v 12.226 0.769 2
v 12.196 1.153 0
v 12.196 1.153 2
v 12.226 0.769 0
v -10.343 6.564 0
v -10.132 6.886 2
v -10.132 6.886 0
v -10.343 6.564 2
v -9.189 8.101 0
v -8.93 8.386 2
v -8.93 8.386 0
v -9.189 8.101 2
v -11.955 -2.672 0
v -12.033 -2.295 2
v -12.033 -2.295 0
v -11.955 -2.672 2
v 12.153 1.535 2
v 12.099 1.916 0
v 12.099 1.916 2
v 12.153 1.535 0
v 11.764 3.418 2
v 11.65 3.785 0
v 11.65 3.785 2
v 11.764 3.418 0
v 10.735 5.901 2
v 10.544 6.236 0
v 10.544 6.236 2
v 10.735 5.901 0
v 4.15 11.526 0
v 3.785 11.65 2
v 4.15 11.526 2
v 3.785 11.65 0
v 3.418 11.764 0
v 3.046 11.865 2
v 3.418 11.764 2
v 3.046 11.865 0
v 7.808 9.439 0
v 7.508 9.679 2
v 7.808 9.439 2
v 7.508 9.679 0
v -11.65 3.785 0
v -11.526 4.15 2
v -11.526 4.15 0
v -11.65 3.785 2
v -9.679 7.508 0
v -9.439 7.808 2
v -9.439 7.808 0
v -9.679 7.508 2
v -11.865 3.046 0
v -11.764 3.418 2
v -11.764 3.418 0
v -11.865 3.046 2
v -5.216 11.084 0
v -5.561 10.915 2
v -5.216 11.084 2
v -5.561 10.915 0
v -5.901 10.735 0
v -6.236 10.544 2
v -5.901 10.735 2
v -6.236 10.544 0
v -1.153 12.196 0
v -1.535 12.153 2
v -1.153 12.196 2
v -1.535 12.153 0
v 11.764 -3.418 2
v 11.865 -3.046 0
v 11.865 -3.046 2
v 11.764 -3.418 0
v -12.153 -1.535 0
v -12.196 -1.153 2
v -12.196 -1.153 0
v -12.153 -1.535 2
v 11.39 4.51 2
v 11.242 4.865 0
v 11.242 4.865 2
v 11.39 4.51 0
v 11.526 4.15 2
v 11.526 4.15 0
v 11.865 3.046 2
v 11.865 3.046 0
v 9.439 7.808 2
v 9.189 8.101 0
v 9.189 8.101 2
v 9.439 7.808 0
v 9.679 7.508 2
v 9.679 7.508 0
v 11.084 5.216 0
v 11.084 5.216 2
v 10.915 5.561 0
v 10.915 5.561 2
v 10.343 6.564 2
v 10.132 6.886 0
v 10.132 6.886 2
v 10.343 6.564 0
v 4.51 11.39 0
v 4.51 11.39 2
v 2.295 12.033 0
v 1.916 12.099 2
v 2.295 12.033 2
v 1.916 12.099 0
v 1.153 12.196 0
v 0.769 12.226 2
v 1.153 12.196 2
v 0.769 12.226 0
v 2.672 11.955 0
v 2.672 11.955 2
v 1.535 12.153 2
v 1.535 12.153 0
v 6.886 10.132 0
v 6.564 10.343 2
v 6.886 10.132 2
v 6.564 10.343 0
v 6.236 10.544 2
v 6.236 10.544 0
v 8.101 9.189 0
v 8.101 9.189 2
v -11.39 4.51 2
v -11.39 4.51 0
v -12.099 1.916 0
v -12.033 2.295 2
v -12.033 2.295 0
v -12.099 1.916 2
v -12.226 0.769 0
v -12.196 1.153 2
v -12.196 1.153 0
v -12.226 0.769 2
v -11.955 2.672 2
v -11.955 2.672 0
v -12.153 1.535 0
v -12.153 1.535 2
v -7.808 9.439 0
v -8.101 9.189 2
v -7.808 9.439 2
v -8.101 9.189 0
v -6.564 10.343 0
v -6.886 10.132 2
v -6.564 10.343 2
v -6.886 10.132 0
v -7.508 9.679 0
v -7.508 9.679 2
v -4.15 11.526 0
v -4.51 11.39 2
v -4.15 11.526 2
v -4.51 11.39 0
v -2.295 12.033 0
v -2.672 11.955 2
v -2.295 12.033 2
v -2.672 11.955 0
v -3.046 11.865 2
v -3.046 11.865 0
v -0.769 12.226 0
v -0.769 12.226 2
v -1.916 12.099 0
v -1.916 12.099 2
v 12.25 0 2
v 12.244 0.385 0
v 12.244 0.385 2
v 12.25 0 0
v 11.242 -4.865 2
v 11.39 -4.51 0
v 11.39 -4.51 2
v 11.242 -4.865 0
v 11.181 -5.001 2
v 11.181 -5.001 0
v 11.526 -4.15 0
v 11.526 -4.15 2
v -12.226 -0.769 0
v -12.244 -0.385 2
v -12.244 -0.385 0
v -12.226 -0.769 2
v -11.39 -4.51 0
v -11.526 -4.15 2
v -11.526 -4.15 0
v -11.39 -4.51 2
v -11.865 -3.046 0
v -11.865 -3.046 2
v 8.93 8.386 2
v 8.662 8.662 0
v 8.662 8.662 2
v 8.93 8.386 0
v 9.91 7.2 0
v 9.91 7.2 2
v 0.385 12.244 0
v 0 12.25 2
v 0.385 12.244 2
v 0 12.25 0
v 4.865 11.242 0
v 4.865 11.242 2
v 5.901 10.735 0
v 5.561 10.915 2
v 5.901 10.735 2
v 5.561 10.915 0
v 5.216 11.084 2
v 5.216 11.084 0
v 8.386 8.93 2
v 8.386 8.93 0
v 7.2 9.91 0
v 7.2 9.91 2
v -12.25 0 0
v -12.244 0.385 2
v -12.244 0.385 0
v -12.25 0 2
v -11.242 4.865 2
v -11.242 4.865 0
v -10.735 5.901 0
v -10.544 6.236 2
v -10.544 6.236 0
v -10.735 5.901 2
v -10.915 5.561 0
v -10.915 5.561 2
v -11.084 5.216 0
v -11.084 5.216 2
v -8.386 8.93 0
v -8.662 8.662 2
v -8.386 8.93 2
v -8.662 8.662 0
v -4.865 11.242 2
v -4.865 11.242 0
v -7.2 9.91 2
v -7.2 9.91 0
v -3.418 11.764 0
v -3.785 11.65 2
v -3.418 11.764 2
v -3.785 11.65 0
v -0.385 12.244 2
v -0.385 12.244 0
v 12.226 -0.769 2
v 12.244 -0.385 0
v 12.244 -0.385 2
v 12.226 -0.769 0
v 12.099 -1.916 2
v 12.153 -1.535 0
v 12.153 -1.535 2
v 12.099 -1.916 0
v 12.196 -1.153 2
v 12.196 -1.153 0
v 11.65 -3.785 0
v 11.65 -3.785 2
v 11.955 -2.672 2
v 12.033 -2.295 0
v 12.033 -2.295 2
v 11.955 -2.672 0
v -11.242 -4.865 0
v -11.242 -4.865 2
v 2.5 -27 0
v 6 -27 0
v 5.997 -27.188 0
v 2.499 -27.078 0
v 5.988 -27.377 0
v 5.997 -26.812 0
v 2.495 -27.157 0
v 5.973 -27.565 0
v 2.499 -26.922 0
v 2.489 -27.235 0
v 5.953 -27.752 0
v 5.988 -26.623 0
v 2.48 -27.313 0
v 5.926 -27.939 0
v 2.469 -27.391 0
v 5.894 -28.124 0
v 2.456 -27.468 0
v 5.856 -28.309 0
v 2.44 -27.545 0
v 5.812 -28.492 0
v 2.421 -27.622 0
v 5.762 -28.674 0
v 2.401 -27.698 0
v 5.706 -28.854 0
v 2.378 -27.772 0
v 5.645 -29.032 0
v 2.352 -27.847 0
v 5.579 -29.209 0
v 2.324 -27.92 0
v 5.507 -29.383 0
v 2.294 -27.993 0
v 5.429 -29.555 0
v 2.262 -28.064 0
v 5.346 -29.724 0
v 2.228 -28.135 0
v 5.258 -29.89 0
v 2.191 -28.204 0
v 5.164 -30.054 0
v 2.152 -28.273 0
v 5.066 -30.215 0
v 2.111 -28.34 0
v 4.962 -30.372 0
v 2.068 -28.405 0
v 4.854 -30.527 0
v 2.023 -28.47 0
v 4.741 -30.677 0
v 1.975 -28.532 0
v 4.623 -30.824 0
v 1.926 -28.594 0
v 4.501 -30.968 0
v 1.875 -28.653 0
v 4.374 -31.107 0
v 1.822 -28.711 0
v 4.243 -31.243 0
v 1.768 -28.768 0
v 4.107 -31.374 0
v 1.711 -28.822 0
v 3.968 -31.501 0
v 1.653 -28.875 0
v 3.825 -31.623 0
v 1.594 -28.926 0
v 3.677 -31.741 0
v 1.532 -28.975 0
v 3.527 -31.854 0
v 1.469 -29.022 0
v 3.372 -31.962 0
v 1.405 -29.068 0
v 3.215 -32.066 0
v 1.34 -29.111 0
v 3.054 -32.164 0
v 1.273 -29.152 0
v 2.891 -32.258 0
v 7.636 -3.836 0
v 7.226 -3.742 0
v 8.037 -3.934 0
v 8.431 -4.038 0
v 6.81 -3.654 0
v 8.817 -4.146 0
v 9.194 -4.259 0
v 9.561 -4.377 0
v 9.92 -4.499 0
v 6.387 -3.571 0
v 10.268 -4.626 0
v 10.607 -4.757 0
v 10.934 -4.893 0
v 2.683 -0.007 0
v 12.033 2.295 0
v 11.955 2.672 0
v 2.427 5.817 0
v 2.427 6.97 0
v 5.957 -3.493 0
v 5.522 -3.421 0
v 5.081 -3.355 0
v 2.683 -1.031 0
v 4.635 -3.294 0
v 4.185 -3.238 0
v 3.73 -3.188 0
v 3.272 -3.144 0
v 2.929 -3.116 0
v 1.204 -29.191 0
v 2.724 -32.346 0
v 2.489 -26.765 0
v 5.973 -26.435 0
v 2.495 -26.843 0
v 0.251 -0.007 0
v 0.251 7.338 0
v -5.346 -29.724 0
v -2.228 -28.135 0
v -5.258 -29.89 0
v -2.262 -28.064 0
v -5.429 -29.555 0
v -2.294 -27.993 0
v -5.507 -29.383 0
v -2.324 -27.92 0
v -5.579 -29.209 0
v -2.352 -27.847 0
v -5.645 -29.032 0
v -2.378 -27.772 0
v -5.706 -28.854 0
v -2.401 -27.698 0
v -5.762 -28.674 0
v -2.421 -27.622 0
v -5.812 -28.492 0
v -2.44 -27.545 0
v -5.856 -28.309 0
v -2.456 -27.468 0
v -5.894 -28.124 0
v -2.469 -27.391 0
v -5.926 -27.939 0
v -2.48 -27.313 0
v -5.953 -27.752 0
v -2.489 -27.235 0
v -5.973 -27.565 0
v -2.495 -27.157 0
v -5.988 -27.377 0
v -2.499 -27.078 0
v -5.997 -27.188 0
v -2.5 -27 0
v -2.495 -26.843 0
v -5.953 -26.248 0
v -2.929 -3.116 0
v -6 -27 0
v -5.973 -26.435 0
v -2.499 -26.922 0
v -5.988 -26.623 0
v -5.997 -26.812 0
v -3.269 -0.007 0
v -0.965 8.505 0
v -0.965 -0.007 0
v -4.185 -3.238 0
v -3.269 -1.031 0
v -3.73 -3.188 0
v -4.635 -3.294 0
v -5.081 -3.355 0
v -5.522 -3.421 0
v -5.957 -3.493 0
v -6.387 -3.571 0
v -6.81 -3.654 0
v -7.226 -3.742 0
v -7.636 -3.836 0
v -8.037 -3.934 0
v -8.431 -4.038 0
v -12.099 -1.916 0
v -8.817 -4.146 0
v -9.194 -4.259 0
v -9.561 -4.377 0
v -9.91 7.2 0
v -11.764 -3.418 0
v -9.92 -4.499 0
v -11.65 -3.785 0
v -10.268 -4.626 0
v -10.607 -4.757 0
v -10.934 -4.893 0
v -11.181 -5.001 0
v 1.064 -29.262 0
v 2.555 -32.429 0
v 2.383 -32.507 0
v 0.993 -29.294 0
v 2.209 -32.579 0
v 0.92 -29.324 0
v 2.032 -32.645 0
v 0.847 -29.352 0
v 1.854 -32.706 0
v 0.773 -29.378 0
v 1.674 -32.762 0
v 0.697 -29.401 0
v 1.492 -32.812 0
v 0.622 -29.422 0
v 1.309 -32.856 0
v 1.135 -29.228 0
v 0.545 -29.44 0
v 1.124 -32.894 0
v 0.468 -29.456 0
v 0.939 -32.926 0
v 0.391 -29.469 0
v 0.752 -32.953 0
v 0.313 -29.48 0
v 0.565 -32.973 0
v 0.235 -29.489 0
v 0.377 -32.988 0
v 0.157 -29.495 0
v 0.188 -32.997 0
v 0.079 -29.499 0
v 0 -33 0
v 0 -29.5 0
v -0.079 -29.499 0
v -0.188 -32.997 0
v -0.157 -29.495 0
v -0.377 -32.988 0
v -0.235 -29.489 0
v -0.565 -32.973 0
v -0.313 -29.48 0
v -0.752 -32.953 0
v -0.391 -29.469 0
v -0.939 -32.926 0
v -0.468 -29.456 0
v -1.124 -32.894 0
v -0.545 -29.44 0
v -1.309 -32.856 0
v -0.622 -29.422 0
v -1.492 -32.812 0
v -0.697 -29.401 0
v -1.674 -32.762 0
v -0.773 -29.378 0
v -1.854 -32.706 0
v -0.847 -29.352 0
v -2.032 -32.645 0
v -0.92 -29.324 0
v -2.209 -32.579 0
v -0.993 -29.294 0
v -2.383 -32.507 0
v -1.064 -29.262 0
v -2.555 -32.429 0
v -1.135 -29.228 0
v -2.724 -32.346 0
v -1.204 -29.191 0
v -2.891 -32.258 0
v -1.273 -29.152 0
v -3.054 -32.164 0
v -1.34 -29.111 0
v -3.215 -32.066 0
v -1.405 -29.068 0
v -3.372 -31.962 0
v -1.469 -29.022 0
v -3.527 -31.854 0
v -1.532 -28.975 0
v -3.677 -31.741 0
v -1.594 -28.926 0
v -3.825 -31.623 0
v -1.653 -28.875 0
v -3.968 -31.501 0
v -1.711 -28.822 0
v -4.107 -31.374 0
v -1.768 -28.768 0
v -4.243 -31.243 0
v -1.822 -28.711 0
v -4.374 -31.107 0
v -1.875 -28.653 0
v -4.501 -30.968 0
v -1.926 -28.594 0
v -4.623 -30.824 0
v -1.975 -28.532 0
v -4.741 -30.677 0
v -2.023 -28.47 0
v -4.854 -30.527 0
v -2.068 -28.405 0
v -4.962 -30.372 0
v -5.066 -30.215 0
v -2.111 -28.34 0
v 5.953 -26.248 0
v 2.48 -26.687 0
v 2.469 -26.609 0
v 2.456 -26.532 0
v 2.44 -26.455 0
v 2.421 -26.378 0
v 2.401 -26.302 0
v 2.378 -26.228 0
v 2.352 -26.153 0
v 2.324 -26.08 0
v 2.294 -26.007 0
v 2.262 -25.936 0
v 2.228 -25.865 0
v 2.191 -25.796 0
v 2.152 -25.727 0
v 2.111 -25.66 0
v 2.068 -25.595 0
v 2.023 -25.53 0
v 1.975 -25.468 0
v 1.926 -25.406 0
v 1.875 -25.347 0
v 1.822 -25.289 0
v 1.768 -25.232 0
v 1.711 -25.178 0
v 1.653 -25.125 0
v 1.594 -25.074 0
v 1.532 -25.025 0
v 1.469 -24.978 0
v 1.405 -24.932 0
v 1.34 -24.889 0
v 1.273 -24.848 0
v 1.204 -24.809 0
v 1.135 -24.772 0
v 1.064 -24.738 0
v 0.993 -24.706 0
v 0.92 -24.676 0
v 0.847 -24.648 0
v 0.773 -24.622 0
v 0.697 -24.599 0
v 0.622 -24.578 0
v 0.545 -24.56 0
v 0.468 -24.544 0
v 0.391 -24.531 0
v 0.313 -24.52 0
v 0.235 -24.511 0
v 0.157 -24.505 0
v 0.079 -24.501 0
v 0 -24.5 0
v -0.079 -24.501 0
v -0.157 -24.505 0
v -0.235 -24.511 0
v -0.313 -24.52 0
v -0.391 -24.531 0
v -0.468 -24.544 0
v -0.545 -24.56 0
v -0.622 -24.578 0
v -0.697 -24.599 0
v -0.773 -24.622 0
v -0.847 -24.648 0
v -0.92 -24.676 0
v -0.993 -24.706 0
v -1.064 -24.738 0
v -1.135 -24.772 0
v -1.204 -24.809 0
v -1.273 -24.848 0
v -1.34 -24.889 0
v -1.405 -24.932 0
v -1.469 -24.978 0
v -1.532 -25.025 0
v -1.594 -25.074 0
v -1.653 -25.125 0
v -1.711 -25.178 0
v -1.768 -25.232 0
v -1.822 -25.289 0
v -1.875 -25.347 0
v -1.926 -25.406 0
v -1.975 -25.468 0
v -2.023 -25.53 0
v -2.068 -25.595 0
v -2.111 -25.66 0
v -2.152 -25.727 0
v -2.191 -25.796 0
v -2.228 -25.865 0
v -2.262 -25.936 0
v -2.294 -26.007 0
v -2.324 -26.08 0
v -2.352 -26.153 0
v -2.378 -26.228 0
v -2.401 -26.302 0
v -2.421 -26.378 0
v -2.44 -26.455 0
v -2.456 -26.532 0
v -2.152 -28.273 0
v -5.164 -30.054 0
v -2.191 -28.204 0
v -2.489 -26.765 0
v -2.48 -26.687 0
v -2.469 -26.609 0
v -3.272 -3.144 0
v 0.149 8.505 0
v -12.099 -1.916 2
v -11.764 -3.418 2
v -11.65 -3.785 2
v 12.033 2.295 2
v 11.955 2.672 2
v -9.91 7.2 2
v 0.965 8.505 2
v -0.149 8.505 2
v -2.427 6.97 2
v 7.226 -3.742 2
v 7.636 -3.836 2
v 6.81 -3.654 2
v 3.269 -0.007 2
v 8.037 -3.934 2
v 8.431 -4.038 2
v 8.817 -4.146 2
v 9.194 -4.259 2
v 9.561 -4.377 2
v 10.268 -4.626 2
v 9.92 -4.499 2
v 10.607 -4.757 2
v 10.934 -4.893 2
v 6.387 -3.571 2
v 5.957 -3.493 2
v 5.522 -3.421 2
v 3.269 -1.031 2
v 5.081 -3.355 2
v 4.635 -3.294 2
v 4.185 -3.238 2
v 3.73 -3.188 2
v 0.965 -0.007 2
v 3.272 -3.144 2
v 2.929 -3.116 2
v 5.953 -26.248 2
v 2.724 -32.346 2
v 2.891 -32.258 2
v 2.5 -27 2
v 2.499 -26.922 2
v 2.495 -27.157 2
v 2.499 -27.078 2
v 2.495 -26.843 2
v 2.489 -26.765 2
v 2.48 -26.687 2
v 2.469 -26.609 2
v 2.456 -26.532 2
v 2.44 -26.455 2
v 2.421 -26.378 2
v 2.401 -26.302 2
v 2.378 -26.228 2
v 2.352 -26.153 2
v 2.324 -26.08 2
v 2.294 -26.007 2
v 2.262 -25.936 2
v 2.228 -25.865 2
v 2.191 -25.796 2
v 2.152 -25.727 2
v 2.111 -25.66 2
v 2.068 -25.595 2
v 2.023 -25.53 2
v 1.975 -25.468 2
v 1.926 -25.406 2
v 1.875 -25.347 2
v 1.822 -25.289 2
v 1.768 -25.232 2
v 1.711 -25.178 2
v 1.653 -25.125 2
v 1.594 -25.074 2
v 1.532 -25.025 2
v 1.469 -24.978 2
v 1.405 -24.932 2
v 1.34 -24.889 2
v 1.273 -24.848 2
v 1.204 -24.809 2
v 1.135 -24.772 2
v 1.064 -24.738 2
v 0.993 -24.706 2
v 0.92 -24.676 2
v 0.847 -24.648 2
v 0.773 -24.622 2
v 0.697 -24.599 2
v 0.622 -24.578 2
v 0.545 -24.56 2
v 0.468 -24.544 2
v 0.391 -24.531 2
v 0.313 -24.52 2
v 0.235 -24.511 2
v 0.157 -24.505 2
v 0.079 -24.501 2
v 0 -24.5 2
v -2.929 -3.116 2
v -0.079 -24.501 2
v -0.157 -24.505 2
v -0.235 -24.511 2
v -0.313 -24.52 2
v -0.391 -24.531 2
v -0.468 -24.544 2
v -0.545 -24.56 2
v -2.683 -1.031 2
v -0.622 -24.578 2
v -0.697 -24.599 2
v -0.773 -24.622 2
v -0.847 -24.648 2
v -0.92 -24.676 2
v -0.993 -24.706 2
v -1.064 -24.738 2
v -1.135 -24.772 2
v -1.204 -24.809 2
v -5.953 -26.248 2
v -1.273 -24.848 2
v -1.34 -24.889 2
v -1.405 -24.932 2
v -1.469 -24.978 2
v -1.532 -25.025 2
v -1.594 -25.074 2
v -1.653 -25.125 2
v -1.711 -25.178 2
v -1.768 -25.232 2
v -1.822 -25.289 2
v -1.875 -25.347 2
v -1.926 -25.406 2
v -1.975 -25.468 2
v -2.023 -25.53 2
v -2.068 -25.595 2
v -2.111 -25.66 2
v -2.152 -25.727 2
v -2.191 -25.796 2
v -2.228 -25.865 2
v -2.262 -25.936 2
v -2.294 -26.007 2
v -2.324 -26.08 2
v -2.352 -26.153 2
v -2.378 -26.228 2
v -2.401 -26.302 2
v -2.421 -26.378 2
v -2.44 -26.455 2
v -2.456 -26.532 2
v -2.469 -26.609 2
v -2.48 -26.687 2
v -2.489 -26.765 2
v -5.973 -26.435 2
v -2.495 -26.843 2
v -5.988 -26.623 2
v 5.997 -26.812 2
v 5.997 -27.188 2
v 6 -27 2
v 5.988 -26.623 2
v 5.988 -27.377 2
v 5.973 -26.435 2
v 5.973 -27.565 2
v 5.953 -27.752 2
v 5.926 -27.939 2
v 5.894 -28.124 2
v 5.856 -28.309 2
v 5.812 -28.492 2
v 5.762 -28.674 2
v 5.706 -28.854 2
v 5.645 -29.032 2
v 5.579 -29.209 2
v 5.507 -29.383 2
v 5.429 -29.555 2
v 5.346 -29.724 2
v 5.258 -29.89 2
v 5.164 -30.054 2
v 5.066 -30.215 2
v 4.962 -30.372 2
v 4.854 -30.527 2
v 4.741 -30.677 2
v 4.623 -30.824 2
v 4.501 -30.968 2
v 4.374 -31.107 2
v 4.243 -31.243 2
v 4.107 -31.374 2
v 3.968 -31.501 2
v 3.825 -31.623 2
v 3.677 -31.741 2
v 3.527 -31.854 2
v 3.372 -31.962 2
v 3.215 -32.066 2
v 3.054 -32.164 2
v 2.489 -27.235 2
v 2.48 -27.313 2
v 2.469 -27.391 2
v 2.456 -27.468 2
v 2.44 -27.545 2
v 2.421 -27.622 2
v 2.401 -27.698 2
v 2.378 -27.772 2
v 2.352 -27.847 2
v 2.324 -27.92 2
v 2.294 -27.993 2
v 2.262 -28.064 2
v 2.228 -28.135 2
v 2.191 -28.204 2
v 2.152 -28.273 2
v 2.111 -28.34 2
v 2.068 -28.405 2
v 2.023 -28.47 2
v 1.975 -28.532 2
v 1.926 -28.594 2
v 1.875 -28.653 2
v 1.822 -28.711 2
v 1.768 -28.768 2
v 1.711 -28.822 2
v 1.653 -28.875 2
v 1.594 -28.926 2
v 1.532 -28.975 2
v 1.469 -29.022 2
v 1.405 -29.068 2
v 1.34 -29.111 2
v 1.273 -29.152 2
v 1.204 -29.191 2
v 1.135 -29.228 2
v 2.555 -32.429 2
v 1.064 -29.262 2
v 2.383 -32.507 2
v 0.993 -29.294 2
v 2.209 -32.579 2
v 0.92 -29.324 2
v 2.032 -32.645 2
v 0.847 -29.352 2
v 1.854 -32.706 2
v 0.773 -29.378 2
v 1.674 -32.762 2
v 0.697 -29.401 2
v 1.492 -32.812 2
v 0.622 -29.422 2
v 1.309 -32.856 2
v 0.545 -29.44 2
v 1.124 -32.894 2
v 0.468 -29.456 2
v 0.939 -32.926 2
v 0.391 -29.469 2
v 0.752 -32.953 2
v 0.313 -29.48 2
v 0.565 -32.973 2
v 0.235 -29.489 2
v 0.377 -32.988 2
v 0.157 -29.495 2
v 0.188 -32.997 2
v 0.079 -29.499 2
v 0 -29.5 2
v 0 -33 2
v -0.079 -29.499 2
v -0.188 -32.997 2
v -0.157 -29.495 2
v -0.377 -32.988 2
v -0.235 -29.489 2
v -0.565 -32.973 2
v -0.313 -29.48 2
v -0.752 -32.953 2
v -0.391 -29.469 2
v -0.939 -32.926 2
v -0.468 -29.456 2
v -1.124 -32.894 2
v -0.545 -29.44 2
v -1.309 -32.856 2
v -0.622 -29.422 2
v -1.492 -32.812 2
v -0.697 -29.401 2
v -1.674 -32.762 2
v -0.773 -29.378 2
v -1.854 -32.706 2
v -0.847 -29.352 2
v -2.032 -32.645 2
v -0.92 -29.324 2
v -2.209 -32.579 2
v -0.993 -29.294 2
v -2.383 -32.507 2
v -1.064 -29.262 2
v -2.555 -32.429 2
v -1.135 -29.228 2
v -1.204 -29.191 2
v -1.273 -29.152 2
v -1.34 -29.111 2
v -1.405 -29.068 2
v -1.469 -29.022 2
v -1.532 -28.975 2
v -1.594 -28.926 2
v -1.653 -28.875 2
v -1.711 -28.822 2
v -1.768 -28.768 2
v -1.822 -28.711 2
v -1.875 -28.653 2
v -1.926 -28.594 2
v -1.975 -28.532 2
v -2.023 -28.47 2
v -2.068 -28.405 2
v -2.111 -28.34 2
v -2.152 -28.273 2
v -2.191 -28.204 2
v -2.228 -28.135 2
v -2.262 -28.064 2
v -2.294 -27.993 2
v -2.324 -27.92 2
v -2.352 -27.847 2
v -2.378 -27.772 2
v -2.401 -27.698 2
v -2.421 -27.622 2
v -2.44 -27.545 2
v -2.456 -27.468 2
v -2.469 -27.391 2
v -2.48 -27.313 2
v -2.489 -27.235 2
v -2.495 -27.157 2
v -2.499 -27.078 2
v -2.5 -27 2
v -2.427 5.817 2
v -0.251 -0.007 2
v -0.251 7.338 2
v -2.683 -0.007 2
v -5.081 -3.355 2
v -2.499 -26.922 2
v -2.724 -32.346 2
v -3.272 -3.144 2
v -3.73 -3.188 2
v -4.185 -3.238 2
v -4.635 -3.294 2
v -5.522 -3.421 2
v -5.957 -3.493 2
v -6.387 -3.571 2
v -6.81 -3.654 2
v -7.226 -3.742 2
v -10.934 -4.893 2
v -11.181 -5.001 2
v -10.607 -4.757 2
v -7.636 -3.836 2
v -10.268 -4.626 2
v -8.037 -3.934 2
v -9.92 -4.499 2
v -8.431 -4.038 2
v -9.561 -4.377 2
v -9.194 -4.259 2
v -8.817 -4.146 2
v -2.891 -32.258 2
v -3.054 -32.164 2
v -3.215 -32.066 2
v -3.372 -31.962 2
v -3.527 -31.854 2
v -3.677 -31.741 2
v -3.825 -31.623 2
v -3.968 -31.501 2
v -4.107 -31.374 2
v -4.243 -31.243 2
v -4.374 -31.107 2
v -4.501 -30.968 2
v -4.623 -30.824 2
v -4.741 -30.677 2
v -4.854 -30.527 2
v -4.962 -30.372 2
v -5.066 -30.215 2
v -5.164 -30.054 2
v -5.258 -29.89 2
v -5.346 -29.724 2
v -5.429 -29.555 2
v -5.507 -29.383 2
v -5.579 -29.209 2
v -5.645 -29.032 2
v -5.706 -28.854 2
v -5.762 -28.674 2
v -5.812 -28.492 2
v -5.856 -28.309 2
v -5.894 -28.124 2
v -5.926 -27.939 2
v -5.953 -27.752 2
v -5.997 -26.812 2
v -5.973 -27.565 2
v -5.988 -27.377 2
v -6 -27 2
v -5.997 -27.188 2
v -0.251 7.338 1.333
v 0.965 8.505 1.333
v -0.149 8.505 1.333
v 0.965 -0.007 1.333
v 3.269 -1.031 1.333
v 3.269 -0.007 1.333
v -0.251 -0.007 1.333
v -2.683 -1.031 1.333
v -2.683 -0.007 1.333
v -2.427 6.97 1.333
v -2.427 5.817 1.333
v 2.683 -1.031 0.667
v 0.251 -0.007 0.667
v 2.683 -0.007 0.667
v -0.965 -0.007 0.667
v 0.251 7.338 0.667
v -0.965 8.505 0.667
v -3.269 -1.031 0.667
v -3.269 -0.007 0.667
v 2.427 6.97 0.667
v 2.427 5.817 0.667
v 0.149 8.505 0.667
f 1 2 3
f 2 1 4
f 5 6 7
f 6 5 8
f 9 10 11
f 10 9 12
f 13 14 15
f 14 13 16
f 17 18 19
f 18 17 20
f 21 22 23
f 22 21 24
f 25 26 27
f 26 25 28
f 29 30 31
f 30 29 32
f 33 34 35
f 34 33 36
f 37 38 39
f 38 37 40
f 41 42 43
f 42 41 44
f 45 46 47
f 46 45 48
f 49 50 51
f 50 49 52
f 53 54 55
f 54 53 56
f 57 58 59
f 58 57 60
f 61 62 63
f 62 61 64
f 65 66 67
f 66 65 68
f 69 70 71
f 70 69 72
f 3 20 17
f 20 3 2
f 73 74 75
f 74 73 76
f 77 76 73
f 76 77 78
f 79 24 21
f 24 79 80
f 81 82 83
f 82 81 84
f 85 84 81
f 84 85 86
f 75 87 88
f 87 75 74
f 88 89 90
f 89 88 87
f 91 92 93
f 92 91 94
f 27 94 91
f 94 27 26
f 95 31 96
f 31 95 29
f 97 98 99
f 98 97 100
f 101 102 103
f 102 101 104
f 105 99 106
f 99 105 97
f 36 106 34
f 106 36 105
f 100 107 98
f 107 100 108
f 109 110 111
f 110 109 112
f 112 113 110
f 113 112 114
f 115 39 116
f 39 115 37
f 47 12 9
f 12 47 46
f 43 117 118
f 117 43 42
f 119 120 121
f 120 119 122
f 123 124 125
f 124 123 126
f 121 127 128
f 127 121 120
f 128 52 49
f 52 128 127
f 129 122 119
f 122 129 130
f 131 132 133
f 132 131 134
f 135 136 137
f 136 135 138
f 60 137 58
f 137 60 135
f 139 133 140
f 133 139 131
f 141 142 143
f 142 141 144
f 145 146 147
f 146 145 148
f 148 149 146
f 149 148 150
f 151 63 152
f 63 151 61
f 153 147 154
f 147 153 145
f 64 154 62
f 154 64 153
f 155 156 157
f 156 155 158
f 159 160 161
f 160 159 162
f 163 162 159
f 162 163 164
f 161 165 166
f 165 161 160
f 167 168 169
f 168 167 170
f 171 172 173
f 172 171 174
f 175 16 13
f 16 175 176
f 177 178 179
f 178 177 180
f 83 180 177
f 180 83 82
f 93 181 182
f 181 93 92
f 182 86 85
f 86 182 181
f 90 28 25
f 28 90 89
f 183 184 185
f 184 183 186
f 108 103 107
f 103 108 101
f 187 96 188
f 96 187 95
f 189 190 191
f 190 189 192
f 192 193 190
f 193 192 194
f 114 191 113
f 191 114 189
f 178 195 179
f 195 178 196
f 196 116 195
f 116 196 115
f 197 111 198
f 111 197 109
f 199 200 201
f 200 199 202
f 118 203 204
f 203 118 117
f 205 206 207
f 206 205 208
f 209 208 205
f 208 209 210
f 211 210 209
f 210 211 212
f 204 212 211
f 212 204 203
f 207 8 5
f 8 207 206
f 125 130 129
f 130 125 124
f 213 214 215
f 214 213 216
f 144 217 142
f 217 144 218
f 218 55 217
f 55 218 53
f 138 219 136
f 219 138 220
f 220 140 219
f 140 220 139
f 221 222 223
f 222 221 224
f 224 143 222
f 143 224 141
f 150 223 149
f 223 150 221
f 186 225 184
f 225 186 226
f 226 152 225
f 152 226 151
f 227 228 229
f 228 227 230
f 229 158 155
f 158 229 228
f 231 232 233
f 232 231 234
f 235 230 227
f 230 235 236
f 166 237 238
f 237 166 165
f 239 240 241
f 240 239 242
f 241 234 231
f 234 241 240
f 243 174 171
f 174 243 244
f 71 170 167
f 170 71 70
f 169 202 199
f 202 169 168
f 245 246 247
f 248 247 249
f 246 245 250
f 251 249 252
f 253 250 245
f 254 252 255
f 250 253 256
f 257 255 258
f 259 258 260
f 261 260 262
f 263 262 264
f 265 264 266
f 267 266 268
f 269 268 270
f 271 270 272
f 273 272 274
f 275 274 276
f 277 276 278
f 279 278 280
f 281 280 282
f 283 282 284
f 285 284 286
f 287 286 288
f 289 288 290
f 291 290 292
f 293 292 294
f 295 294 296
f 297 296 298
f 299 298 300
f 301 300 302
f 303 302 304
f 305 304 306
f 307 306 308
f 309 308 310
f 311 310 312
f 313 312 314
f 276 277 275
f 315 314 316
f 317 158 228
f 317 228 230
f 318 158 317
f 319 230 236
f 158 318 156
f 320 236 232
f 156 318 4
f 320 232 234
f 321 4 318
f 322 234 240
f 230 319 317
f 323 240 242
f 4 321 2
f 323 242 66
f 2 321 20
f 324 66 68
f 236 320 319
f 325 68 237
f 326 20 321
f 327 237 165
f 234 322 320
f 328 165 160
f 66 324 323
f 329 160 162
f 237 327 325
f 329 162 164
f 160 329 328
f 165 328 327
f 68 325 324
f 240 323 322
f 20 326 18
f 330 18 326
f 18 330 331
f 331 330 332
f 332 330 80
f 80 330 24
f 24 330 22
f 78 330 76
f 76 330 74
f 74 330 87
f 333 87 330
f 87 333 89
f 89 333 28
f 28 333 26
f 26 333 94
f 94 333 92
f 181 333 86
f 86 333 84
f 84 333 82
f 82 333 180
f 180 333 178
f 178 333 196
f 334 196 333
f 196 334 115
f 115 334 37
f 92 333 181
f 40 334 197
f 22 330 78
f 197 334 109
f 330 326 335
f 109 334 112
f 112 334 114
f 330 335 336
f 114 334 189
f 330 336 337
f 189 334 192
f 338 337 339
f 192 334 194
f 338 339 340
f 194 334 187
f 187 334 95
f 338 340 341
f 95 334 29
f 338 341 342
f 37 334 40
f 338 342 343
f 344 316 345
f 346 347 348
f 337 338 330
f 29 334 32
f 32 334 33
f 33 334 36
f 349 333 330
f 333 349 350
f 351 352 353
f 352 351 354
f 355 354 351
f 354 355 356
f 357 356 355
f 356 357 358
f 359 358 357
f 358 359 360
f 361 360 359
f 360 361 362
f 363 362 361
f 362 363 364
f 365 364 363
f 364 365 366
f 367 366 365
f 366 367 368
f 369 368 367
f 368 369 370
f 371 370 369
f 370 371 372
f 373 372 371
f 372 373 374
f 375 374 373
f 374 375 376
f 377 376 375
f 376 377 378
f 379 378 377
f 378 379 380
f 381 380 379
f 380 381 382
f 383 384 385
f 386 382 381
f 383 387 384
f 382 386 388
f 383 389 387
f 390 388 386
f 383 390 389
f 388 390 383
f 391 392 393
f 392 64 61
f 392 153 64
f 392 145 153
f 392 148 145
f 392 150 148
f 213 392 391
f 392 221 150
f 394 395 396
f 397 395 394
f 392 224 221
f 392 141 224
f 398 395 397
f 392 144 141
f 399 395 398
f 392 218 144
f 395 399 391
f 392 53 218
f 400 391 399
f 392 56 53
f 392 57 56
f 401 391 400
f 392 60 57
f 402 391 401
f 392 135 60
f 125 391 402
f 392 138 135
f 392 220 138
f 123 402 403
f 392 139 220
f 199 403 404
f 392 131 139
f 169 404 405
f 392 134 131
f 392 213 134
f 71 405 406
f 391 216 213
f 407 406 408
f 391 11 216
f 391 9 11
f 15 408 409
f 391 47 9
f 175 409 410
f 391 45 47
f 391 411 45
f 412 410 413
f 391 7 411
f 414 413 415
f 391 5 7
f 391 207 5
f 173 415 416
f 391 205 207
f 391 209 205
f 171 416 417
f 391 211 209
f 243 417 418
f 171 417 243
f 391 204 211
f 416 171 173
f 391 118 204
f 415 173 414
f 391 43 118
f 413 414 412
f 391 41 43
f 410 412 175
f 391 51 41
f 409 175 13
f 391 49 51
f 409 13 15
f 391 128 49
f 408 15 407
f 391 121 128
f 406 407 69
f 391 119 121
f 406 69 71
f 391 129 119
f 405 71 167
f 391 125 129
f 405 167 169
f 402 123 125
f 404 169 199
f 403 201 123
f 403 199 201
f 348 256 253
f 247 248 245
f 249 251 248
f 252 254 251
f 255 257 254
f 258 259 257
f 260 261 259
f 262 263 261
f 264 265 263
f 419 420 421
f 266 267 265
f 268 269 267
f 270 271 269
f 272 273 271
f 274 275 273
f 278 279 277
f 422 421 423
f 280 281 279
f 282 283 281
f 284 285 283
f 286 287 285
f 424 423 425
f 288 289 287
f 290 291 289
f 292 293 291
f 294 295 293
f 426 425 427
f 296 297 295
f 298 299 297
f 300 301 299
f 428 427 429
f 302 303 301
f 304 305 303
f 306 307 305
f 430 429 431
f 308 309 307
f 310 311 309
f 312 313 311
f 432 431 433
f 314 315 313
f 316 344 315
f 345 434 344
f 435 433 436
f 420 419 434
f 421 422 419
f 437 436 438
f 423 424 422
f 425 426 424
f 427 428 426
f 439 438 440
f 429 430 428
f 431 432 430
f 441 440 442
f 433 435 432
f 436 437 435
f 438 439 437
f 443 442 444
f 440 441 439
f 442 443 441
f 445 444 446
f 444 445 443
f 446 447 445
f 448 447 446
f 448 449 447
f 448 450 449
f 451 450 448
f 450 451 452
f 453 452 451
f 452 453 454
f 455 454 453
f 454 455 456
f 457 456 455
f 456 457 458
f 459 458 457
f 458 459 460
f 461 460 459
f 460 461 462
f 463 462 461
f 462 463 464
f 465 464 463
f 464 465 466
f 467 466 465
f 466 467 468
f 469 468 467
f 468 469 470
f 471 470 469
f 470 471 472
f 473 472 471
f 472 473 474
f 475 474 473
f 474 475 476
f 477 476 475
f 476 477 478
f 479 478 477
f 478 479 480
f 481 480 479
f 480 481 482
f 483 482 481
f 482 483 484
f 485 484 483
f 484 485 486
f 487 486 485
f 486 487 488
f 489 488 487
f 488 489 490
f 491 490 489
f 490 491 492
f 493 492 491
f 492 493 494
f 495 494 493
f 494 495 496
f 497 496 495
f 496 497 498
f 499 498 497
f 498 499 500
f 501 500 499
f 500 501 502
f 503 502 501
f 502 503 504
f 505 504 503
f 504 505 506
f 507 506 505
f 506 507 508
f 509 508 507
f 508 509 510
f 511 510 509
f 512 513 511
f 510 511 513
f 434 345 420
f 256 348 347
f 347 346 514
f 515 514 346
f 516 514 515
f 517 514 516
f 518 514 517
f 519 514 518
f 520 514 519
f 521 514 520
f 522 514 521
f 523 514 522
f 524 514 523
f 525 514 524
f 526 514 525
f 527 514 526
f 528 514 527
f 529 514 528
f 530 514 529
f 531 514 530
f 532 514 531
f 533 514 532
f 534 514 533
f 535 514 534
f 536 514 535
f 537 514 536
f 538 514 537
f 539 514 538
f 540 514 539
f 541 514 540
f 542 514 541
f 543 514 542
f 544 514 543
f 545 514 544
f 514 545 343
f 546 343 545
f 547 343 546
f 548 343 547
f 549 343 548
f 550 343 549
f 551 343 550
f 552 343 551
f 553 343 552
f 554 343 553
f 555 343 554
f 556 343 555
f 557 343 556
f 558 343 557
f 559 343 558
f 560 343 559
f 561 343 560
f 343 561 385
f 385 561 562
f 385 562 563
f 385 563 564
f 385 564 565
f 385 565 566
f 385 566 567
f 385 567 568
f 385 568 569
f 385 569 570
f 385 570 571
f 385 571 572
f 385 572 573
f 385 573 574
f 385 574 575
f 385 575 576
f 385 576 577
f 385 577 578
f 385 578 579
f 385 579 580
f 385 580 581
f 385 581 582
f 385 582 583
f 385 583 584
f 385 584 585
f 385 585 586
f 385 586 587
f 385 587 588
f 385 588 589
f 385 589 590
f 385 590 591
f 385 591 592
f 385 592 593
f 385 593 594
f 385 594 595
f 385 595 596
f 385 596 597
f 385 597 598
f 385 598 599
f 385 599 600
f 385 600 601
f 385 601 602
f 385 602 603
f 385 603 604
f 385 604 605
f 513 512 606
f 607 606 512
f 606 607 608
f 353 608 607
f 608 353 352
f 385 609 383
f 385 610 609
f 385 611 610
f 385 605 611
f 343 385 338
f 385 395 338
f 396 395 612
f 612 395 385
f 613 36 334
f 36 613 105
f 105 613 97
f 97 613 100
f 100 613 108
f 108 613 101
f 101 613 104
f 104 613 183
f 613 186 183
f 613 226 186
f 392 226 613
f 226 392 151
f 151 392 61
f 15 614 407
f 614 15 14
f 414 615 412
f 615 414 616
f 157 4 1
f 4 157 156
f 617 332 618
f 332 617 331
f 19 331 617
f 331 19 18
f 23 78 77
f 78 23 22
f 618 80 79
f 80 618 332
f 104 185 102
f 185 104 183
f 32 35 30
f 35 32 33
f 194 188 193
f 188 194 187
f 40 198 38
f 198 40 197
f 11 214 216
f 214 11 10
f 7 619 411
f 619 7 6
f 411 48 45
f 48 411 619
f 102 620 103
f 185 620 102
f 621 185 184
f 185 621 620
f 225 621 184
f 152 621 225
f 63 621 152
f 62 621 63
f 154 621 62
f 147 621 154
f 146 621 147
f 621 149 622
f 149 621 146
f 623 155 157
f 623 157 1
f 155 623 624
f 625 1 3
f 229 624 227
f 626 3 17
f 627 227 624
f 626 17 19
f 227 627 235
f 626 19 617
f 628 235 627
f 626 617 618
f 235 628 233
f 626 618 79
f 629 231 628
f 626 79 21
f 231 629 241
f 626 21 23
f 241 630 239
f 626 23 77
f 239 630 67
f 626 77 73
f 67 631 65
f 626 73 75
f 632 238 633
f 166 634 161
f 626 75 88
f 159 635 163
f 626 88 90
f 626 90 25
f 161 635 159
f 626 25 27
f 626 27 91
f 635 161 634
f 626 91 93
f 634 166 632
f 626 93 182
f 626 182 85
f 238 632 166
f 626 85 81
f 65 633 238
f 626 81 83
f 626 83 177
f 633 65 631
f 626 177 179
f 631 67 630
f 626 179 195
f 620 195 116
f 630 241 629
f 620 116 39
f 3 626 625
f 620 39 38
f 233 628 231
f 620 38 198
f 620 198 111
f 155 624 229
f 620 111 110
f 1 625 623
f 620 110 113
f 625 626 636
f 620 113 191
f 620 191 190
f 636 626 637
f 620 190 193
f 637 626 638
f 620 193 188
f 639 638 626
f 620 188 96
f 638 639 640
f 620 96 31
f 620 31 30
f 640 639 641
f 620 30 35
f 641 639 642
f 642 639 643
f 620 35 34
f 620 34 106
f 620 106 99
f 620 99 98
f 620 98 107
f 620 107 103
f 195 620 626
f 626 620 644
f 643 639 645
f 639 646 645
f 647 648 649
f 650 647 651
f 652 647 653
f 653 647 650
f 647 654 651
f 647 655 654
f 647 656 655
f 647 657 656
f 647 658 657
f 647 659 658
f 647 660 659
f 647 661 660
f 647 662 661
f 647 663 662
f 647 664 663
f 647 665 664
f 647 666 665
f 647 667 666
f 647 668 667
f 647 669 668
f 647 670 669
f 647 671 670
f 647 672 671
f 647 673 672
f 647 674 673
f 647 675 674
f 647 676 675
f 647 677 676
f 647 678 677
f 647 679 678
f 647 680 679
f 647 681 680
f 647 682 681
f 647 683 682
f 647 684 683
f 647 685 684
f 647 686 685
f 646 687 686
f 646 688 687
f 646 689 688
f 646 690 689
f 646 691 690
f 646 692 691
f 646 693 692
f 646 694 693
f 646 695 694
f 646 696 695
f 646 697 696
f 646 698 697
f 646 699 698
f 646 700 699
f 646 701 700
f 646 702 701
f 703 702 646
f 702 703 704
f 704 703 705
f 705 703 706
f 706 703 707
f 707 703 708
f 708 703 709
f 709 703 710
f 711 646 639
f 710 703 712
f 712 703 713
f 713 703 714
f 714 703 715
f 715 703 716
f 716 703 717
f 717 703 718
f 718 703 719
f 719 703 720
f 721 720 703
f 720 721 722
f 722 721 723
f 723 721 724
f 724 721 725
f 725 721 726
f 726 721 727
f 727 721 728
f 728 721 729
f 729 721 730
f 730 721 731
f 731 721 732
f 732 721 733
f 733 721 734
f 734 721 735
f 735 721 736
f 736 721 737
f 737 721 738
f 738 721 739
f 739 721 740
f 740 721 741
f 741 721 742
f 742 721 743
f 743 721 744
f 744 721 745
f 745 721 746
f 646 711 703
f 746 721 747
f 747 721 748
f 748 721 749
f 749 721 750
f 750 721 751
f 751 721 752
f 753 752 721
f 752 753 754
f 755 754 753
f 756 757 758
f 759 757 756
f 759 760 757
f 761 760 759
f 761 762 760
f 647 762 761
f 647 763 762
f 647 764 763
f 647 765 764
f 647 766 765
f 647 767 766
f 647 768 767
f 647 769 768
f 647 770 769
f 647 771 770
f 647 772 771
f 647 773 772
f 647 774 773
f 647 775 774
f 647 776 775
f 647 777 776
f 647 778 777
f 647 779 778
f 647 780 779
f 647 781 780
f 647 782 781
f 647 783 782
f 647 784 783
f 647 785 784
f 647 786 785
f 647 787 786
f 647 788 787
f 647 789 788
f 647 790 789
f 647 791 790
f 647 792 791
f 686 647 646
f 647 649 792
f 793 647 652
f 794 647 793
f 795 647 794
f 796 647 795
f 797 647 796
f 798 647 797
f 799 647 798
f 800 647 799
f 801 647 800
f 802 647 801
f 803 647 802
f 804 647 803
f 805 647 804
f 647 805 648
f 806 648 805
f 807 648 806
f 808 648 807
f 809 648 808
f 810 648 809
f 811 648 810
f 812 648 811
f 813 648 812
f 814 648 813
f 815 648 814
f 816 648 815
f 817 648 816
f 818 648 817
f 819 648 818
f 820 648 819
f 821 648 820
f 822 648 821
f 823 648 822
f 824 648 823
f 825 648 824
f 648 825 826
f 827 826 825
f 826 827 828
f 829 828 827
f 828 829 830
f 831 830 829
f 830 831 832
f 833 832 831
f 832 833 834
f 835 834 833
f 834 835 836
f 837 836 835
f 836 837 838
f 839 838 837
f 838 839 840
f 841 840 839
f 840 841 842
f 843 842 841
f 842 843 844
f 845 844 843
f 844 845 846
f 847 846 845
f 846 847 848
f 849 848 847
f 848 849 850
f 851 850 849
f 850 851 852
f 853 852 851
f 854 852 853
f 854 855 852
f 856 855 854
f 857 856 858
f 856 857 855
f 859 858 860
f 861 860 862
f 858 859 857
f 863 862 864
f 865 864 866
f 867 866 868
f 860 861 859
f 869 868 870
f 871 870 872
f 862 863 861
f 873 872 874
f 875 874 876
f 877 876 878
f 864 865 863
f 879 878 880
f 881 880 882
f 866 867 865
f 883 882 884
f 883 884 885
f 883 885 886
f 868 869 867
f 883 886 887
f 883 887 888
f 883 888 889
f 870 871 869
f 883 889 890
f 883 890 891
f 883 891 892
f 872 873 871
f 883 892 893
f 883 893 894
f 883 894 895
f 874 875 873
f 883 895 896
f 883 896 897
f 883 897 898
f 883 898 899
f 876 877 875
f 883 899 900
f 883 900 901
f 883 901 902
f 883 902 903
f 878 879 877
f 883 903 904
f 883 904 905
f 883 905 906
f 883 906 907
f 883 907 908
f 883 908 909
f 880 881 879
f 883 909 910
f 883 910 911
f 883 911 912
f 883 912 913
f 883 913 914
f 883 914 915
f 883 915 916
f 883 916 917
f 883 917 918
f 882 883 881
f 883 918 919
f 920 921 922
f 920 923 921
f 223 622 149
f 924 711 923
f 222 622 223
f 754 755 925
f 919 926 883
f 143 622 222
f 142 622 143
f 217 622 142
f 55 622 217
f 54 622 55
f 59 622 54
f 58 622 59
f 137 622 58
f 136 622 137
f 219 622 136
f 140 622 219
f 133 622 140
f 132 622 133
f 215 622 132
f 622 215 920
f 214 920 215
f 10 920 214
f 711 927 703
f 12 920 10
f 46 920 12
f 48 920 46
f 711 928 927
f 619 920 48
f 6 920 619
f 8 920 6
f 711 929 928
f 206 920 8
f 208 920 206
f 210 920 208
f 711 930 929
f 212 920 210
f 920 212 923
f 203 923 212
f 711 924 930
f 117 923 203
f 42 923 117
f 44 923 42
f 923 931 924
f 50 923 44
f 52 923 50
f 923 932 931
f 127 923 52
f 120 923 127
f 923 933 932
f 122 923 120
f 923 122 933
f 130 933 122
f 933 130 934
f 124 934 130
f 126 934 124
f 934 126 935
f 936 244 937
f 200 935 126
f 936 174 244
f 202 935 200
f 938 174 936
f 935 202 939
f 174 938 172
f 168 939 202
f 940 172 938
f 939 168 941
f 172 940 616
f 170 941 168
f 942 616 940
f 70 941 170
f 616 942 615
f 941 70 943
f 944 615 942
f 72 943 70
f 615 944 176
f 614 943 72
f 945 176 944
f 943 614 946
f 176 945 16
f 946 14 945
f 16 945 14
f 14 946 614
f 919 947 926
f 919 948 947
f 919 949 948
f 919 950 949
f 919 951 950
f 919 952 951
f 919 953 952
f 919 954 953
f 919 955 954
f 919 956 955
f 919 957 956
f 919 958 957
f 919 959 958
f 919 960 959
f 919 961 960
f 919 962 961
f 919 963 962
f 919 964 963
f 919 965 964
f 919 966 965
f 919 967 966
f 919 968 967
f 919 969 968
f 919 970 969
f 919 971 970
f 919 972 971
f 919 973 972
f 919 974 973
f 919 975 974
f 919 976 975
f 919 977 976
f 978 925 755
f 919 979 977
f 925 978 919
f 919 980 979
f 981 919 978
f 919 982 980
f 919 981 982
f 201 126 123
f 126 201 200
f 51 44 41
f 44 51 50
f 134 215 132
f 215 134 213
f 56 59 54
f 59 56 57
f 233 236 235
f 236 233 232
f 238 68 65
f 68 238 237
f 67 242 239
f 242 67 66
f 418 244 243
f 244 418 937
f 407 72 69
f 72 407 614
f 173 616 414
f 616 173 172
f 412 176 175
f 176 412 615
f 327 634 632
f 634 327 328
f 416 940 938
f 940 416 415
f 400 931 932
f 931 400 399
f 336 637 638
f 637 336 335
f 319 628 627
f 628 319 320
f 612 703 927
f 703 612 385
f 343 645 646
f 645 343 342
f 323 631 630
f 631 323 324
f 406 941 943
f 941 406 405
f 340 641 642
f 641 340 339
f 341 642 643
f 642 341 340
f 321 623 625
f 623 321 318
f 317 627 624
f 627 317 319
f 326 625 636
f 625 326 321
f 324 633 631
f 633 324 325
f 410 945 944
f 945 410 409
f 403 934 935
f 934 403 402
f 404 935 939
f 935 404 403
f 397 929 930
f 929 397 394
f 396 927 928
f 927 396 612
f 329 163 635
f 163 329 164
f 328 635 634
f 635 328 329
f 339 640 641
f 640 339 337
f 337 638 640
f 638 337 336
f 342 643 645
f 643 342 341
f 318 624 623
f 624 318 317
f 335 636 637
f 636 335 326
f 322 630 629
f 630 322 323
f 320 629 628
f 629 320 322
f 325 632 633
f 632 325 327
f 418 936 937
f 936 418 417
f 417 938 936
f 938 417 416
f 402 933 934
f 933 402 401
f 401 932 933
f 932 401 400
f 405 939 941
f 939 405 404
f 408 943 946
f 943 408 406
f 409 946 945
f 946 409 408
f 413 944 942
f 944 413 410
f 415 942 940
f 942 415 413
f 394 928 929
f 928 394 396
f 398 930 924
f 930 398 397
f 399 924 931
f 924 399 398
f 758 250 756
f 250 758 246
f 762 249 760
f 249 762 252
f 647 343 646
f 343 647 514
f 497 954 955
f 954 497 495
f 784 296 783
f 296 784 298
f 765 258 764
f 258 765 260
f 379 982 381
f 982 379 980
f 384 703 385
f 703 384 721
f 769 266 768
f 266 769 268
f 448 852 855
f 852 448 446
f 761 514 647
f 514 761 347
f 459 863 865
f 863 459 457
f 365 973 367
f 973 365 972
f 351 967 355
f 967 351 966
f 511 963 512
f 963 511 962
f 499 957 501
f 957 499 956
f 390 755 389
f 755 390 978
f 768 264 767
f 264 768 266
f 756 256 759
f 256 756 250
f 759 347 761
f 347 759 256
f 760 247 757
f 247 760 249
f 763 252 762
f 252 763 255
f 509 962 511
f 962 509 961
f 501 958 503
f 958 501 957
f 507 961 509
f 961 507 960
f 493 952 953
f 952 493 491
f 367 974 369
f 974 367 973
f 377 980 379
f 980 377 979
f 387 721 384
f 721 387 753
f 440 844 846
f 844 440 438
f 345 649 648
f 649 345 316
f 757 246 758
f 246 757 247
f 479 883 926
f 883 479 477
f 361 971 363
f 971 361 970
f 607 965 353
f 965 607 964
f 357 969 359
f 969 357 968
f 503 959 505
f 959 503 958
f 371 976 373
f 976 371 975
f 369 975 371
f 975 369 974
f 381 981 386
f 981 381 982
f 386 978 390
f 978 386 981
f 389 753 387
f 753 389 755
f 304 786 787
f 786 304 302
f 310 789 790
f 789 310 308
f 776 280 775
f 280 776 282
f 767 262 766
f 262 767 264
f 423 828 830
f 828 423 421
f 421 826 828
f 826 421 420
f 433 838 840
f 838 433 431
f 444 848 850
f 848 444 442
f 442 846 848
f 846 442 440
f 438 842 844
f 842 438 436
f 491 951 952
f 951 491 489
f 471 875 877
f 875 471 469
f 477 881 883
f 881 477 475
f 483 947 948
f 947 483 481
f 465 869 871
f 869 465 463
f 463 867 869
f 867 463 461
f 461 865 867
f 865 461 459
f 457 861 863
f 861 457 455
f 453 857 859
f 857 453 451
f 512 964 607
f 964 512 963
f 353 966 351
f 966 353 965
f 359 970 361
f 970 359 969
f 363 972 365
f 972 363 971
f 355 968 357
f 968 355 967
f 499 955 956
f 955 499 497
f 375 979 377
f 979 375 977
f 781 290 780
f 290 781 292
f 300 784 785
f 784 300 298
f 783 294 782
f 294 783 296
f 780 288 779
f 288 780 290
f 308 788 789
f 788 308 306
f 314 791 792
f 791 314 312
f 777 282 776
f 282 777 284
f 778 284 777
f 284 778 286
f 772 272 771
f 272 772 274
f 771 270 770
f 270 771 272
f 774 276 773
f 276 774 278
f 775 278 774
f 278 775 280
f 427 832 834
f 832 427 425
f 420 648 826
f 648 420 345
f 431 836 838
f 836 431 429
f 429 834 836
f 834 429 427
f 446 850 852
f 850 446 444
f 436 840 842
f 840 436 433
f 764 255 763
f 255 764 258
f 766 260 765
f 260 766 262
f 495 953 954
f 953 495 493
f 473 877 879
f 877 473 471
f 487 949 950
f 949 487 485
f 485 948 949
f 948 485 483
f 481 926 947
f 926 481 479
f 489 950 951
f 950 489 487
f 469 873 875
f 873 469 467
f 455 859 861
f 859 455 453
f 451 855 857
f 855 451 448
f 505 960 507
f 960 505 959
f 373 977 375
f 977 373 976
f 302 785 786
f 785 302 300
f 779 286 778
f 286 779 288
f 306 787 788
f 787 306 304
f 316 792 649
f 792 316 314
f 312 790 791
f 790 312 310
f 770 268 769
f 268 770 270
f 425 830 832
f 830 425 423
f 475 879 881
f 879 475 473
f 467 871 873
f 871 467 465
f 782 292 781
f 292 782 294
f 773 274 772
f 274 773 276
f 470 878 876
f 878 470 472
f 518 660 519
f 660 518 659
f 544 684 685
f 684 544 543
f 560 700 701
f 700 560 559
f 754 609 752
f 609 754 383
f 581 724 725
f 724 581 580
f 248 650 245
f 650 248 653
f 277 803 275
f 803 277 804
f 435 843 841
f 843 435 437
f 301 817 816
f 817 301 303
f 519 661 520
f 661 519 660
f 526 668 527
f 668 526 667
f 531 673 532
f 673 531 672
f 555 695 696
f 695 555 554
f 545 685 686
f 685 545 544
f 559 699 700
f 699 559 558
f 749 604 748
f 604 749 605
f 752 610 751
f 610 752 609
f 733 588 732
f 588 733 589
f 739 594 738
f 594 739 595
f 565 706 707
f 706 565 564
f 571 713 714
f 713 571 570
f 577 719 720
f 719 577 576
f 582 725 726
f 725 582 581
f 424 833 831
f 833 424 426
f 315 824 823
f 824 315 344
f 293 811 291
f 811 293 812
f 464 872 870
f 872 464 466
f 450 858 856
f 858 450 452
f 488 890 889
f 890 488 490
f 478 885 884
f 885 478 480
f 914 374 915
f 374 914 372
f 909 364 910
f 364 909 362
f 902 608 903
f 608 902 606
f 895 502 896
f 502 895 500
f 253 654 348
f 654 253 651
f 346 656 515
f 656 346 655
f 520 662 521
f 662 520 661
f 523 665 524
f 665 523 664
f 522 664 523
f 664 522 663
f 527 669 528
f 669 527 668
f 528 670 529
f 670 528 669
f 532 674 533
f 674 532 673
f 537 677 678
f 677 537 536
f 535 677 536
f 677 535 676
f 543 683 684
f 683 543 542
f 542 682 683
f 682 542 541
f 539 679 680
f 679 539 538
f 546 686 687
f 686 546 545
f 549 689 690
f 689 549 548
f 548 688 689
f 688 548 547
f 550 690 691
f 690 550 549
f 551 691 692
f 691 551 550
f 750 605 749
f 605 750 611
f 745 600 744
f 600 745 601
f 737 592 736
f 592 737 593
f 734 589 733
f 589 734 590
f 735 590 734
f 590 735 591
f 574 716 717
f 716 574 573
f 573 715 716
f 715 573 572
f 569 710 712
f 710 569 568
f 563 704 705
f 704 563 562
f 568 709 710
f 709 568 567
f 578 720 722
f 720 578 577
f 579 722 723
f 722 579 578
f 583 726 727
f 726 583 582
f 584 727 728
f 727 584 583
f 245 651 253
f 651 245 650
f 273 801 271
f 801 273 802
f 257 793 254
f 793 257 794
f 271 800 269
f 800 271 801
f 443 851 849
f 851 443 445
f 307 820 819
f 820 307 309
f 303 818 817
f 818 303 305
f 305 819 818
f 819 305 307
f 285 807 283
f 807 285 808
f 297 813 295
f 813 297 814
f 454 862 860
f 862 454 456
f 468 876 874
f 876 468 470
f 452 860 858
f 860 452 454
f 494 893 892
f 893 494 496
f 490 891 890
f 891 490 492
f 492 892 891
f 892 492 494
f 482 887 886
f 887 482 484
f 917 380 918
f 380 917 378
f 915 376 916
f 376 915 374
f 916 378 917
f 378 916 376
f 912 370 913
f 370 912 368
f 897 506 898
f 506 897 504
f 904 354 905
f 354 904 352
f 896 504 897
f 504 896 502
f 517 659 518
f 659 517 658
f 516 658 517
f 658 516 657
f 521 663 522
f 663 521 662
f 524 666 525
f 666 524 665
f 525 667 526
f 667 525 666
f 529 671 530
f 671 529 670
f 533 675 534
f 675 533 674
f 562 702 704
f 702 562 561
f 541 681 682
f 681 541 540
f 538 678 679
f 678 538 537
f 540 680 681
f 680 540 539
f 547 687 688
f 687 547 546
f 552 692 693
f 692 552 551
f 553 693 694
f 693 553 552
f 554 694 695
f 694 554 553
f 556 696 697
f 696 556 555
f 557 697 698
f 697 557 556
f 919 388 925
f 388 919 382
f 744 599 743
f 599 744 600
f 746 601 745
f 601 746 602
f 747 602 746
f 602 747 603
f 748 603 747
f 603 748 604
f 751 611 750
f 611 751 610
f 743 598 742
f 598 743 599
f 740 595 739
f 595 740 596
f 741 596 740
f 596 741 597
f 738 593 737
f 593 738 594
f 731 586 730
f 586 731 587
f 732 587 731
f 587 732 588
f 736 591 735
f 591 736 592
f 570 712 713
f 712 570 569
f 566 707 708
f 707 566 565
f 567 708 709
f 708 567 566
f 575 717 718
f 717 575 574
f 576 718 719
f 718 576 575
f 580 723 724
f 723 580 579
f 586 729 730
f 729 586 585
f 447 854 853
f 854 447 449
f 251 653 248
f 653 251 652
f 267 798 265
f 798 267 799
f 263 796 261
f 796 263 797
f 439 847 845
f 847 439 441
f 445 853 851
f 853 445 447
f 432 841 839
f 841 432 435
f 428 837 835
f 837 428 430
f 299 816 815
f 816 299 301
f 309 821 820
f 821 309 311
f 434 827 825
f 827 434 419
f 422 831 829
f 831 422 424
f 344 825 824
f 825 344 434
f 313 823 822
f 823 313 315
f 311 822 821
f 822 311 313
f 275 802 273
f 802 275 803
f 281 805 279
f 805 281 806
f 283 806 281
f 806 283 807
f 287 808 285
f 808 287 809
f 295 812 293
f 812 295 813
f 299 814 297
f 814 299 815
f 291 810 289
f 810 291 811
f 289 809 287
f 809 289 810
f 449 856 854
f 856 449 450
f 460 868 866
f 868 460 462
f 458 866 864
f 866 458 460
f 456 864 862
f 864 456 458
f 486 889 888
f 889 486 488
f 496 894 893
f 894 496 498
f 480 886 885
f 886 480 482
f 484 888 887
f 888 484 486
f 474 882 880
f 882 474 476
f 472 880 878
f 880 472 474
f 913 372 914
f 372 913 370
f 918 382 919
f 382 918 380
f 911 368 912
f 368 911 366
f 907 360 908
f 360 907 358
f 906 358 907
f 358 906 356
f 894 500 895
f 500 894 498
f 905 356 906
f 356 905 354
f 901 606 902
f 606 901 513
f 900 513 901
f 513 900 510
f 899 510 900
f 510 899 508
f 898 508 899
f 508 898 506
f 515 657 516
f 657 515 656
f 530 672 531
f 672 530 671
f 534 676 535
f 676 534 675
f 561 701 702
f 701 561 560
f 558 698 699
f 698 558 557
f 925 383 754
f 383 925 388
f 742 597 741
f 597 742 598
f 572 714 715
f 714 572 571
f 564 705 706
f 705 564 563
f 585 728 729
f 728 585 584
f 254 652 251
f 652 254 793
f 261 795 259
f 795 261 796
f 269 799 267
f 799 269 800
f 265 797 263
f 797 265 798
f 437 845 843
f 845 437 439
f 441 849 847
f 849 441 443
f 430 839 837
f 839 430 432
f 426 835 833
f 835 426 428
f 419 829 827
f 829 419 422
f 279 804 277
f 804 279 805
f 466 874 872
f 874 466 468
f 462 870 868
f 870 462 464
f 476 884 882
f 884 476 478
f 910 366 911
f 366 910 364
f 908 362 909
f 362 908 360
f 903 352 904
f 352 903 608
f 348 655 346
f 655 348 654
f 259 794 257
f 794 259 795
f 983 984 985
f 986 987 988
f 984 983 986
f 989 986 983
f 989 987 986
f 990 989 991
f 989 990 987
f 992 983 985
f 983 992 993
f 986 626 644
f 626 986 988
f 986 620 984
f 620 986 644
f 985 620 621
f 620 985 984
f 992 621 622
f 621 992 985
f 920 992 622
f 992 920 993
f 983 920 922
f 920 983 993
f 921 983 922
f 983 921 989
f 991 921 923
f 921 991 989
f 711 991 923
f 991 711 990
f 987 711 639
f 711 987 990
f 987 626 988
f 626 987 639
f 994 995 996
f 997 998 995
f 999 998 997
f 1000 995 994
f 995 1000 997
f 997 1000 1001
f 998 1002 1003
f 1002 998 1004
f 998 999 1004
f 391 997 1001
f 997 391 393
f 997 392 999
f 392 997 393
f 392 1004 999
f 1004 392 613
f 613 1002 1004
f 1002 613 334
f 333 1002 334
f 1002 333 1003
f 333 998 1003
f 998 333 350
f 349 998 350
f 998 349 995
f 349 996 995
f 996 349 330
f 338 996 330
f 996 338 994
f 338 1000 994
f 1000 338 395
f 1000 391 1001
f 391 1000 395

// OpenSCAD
// file: token.scad
d_coin = 22.5; // coin diameter, 22.5 for pound, 23.8 for euro
t_coin = 2; // coin thickness, 3.15 for pound, 2 for euro
d_hole = 5; // hole diameter
l_tail = 27; // distance from coin center to hole center
$fn = 200; // render quality
text="1";
font="Liberation Sans";
fontsize=10;

// put it all together
difference()
{
    tokenCoin();
    embossedText();
}

// functions
module tokenCoin()
{
    difference()
    {
        // coin
        cylinder(h=t_coin, d=d_coin);

        // cutout
        translate([0, -9, -0.5])
            scale([1, 0.4, 1])
                cylinder(h=t_coin+1, d=30);

    }

    difference()
    {
        // tail
        hull()
        {
            cylinder(h=t_coin, d=5);
            translate([0, -l_tail, 0])
                cylinder(h=t_coin, d=12);
        }

        // hole
        translate([0, -l_tail, -0.5])
            cylinder(h=t_coin+1, d=d_hole);
    }
}

module embossedText()
{
    union()
    {
        translate([0,d_coin/4-fontsize/4,t_coin*2/3])
            rotate([0,0,0])
                linear_extrude(height=t_coin/2)
                    text(text=text, font=font, halign="center", valign="center", size=fontsize);
        translate([0,d_coin/4-fontsize/4,t_coin/3])
            rotate([0,180,0])
                linear_extrude(height=t_coin/2)
                    text(text=text, font=font, halign="center", valign="center", size=fontsize);
    }
}
// main file
include <token.scad>

t_coin=2;
d_coin=24.5;
text="1";
fontsize=10;
